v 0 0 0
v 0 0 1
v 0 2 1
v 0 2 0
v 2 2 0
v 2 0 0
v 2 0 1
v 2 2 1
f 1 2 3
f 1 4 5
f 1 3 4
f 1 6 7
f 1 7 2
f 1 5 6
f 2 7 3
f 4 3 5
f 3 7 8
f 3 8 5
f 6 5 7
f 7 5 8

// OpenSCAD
/* Warning, this is a very basic generator with a lot of approximation 
input data : [VDFN, V8X, 2x2x1.0mm, 8, , D, C04-00198D]
generated by com.zoubworld.electronics.cad.model3d.Basic
Date : Sun Feb 15 10:50:48 CET 2026
*/

//body
color("black")
translate([0,0,0])
cube([2.0,2.0,1.0], center=false);
